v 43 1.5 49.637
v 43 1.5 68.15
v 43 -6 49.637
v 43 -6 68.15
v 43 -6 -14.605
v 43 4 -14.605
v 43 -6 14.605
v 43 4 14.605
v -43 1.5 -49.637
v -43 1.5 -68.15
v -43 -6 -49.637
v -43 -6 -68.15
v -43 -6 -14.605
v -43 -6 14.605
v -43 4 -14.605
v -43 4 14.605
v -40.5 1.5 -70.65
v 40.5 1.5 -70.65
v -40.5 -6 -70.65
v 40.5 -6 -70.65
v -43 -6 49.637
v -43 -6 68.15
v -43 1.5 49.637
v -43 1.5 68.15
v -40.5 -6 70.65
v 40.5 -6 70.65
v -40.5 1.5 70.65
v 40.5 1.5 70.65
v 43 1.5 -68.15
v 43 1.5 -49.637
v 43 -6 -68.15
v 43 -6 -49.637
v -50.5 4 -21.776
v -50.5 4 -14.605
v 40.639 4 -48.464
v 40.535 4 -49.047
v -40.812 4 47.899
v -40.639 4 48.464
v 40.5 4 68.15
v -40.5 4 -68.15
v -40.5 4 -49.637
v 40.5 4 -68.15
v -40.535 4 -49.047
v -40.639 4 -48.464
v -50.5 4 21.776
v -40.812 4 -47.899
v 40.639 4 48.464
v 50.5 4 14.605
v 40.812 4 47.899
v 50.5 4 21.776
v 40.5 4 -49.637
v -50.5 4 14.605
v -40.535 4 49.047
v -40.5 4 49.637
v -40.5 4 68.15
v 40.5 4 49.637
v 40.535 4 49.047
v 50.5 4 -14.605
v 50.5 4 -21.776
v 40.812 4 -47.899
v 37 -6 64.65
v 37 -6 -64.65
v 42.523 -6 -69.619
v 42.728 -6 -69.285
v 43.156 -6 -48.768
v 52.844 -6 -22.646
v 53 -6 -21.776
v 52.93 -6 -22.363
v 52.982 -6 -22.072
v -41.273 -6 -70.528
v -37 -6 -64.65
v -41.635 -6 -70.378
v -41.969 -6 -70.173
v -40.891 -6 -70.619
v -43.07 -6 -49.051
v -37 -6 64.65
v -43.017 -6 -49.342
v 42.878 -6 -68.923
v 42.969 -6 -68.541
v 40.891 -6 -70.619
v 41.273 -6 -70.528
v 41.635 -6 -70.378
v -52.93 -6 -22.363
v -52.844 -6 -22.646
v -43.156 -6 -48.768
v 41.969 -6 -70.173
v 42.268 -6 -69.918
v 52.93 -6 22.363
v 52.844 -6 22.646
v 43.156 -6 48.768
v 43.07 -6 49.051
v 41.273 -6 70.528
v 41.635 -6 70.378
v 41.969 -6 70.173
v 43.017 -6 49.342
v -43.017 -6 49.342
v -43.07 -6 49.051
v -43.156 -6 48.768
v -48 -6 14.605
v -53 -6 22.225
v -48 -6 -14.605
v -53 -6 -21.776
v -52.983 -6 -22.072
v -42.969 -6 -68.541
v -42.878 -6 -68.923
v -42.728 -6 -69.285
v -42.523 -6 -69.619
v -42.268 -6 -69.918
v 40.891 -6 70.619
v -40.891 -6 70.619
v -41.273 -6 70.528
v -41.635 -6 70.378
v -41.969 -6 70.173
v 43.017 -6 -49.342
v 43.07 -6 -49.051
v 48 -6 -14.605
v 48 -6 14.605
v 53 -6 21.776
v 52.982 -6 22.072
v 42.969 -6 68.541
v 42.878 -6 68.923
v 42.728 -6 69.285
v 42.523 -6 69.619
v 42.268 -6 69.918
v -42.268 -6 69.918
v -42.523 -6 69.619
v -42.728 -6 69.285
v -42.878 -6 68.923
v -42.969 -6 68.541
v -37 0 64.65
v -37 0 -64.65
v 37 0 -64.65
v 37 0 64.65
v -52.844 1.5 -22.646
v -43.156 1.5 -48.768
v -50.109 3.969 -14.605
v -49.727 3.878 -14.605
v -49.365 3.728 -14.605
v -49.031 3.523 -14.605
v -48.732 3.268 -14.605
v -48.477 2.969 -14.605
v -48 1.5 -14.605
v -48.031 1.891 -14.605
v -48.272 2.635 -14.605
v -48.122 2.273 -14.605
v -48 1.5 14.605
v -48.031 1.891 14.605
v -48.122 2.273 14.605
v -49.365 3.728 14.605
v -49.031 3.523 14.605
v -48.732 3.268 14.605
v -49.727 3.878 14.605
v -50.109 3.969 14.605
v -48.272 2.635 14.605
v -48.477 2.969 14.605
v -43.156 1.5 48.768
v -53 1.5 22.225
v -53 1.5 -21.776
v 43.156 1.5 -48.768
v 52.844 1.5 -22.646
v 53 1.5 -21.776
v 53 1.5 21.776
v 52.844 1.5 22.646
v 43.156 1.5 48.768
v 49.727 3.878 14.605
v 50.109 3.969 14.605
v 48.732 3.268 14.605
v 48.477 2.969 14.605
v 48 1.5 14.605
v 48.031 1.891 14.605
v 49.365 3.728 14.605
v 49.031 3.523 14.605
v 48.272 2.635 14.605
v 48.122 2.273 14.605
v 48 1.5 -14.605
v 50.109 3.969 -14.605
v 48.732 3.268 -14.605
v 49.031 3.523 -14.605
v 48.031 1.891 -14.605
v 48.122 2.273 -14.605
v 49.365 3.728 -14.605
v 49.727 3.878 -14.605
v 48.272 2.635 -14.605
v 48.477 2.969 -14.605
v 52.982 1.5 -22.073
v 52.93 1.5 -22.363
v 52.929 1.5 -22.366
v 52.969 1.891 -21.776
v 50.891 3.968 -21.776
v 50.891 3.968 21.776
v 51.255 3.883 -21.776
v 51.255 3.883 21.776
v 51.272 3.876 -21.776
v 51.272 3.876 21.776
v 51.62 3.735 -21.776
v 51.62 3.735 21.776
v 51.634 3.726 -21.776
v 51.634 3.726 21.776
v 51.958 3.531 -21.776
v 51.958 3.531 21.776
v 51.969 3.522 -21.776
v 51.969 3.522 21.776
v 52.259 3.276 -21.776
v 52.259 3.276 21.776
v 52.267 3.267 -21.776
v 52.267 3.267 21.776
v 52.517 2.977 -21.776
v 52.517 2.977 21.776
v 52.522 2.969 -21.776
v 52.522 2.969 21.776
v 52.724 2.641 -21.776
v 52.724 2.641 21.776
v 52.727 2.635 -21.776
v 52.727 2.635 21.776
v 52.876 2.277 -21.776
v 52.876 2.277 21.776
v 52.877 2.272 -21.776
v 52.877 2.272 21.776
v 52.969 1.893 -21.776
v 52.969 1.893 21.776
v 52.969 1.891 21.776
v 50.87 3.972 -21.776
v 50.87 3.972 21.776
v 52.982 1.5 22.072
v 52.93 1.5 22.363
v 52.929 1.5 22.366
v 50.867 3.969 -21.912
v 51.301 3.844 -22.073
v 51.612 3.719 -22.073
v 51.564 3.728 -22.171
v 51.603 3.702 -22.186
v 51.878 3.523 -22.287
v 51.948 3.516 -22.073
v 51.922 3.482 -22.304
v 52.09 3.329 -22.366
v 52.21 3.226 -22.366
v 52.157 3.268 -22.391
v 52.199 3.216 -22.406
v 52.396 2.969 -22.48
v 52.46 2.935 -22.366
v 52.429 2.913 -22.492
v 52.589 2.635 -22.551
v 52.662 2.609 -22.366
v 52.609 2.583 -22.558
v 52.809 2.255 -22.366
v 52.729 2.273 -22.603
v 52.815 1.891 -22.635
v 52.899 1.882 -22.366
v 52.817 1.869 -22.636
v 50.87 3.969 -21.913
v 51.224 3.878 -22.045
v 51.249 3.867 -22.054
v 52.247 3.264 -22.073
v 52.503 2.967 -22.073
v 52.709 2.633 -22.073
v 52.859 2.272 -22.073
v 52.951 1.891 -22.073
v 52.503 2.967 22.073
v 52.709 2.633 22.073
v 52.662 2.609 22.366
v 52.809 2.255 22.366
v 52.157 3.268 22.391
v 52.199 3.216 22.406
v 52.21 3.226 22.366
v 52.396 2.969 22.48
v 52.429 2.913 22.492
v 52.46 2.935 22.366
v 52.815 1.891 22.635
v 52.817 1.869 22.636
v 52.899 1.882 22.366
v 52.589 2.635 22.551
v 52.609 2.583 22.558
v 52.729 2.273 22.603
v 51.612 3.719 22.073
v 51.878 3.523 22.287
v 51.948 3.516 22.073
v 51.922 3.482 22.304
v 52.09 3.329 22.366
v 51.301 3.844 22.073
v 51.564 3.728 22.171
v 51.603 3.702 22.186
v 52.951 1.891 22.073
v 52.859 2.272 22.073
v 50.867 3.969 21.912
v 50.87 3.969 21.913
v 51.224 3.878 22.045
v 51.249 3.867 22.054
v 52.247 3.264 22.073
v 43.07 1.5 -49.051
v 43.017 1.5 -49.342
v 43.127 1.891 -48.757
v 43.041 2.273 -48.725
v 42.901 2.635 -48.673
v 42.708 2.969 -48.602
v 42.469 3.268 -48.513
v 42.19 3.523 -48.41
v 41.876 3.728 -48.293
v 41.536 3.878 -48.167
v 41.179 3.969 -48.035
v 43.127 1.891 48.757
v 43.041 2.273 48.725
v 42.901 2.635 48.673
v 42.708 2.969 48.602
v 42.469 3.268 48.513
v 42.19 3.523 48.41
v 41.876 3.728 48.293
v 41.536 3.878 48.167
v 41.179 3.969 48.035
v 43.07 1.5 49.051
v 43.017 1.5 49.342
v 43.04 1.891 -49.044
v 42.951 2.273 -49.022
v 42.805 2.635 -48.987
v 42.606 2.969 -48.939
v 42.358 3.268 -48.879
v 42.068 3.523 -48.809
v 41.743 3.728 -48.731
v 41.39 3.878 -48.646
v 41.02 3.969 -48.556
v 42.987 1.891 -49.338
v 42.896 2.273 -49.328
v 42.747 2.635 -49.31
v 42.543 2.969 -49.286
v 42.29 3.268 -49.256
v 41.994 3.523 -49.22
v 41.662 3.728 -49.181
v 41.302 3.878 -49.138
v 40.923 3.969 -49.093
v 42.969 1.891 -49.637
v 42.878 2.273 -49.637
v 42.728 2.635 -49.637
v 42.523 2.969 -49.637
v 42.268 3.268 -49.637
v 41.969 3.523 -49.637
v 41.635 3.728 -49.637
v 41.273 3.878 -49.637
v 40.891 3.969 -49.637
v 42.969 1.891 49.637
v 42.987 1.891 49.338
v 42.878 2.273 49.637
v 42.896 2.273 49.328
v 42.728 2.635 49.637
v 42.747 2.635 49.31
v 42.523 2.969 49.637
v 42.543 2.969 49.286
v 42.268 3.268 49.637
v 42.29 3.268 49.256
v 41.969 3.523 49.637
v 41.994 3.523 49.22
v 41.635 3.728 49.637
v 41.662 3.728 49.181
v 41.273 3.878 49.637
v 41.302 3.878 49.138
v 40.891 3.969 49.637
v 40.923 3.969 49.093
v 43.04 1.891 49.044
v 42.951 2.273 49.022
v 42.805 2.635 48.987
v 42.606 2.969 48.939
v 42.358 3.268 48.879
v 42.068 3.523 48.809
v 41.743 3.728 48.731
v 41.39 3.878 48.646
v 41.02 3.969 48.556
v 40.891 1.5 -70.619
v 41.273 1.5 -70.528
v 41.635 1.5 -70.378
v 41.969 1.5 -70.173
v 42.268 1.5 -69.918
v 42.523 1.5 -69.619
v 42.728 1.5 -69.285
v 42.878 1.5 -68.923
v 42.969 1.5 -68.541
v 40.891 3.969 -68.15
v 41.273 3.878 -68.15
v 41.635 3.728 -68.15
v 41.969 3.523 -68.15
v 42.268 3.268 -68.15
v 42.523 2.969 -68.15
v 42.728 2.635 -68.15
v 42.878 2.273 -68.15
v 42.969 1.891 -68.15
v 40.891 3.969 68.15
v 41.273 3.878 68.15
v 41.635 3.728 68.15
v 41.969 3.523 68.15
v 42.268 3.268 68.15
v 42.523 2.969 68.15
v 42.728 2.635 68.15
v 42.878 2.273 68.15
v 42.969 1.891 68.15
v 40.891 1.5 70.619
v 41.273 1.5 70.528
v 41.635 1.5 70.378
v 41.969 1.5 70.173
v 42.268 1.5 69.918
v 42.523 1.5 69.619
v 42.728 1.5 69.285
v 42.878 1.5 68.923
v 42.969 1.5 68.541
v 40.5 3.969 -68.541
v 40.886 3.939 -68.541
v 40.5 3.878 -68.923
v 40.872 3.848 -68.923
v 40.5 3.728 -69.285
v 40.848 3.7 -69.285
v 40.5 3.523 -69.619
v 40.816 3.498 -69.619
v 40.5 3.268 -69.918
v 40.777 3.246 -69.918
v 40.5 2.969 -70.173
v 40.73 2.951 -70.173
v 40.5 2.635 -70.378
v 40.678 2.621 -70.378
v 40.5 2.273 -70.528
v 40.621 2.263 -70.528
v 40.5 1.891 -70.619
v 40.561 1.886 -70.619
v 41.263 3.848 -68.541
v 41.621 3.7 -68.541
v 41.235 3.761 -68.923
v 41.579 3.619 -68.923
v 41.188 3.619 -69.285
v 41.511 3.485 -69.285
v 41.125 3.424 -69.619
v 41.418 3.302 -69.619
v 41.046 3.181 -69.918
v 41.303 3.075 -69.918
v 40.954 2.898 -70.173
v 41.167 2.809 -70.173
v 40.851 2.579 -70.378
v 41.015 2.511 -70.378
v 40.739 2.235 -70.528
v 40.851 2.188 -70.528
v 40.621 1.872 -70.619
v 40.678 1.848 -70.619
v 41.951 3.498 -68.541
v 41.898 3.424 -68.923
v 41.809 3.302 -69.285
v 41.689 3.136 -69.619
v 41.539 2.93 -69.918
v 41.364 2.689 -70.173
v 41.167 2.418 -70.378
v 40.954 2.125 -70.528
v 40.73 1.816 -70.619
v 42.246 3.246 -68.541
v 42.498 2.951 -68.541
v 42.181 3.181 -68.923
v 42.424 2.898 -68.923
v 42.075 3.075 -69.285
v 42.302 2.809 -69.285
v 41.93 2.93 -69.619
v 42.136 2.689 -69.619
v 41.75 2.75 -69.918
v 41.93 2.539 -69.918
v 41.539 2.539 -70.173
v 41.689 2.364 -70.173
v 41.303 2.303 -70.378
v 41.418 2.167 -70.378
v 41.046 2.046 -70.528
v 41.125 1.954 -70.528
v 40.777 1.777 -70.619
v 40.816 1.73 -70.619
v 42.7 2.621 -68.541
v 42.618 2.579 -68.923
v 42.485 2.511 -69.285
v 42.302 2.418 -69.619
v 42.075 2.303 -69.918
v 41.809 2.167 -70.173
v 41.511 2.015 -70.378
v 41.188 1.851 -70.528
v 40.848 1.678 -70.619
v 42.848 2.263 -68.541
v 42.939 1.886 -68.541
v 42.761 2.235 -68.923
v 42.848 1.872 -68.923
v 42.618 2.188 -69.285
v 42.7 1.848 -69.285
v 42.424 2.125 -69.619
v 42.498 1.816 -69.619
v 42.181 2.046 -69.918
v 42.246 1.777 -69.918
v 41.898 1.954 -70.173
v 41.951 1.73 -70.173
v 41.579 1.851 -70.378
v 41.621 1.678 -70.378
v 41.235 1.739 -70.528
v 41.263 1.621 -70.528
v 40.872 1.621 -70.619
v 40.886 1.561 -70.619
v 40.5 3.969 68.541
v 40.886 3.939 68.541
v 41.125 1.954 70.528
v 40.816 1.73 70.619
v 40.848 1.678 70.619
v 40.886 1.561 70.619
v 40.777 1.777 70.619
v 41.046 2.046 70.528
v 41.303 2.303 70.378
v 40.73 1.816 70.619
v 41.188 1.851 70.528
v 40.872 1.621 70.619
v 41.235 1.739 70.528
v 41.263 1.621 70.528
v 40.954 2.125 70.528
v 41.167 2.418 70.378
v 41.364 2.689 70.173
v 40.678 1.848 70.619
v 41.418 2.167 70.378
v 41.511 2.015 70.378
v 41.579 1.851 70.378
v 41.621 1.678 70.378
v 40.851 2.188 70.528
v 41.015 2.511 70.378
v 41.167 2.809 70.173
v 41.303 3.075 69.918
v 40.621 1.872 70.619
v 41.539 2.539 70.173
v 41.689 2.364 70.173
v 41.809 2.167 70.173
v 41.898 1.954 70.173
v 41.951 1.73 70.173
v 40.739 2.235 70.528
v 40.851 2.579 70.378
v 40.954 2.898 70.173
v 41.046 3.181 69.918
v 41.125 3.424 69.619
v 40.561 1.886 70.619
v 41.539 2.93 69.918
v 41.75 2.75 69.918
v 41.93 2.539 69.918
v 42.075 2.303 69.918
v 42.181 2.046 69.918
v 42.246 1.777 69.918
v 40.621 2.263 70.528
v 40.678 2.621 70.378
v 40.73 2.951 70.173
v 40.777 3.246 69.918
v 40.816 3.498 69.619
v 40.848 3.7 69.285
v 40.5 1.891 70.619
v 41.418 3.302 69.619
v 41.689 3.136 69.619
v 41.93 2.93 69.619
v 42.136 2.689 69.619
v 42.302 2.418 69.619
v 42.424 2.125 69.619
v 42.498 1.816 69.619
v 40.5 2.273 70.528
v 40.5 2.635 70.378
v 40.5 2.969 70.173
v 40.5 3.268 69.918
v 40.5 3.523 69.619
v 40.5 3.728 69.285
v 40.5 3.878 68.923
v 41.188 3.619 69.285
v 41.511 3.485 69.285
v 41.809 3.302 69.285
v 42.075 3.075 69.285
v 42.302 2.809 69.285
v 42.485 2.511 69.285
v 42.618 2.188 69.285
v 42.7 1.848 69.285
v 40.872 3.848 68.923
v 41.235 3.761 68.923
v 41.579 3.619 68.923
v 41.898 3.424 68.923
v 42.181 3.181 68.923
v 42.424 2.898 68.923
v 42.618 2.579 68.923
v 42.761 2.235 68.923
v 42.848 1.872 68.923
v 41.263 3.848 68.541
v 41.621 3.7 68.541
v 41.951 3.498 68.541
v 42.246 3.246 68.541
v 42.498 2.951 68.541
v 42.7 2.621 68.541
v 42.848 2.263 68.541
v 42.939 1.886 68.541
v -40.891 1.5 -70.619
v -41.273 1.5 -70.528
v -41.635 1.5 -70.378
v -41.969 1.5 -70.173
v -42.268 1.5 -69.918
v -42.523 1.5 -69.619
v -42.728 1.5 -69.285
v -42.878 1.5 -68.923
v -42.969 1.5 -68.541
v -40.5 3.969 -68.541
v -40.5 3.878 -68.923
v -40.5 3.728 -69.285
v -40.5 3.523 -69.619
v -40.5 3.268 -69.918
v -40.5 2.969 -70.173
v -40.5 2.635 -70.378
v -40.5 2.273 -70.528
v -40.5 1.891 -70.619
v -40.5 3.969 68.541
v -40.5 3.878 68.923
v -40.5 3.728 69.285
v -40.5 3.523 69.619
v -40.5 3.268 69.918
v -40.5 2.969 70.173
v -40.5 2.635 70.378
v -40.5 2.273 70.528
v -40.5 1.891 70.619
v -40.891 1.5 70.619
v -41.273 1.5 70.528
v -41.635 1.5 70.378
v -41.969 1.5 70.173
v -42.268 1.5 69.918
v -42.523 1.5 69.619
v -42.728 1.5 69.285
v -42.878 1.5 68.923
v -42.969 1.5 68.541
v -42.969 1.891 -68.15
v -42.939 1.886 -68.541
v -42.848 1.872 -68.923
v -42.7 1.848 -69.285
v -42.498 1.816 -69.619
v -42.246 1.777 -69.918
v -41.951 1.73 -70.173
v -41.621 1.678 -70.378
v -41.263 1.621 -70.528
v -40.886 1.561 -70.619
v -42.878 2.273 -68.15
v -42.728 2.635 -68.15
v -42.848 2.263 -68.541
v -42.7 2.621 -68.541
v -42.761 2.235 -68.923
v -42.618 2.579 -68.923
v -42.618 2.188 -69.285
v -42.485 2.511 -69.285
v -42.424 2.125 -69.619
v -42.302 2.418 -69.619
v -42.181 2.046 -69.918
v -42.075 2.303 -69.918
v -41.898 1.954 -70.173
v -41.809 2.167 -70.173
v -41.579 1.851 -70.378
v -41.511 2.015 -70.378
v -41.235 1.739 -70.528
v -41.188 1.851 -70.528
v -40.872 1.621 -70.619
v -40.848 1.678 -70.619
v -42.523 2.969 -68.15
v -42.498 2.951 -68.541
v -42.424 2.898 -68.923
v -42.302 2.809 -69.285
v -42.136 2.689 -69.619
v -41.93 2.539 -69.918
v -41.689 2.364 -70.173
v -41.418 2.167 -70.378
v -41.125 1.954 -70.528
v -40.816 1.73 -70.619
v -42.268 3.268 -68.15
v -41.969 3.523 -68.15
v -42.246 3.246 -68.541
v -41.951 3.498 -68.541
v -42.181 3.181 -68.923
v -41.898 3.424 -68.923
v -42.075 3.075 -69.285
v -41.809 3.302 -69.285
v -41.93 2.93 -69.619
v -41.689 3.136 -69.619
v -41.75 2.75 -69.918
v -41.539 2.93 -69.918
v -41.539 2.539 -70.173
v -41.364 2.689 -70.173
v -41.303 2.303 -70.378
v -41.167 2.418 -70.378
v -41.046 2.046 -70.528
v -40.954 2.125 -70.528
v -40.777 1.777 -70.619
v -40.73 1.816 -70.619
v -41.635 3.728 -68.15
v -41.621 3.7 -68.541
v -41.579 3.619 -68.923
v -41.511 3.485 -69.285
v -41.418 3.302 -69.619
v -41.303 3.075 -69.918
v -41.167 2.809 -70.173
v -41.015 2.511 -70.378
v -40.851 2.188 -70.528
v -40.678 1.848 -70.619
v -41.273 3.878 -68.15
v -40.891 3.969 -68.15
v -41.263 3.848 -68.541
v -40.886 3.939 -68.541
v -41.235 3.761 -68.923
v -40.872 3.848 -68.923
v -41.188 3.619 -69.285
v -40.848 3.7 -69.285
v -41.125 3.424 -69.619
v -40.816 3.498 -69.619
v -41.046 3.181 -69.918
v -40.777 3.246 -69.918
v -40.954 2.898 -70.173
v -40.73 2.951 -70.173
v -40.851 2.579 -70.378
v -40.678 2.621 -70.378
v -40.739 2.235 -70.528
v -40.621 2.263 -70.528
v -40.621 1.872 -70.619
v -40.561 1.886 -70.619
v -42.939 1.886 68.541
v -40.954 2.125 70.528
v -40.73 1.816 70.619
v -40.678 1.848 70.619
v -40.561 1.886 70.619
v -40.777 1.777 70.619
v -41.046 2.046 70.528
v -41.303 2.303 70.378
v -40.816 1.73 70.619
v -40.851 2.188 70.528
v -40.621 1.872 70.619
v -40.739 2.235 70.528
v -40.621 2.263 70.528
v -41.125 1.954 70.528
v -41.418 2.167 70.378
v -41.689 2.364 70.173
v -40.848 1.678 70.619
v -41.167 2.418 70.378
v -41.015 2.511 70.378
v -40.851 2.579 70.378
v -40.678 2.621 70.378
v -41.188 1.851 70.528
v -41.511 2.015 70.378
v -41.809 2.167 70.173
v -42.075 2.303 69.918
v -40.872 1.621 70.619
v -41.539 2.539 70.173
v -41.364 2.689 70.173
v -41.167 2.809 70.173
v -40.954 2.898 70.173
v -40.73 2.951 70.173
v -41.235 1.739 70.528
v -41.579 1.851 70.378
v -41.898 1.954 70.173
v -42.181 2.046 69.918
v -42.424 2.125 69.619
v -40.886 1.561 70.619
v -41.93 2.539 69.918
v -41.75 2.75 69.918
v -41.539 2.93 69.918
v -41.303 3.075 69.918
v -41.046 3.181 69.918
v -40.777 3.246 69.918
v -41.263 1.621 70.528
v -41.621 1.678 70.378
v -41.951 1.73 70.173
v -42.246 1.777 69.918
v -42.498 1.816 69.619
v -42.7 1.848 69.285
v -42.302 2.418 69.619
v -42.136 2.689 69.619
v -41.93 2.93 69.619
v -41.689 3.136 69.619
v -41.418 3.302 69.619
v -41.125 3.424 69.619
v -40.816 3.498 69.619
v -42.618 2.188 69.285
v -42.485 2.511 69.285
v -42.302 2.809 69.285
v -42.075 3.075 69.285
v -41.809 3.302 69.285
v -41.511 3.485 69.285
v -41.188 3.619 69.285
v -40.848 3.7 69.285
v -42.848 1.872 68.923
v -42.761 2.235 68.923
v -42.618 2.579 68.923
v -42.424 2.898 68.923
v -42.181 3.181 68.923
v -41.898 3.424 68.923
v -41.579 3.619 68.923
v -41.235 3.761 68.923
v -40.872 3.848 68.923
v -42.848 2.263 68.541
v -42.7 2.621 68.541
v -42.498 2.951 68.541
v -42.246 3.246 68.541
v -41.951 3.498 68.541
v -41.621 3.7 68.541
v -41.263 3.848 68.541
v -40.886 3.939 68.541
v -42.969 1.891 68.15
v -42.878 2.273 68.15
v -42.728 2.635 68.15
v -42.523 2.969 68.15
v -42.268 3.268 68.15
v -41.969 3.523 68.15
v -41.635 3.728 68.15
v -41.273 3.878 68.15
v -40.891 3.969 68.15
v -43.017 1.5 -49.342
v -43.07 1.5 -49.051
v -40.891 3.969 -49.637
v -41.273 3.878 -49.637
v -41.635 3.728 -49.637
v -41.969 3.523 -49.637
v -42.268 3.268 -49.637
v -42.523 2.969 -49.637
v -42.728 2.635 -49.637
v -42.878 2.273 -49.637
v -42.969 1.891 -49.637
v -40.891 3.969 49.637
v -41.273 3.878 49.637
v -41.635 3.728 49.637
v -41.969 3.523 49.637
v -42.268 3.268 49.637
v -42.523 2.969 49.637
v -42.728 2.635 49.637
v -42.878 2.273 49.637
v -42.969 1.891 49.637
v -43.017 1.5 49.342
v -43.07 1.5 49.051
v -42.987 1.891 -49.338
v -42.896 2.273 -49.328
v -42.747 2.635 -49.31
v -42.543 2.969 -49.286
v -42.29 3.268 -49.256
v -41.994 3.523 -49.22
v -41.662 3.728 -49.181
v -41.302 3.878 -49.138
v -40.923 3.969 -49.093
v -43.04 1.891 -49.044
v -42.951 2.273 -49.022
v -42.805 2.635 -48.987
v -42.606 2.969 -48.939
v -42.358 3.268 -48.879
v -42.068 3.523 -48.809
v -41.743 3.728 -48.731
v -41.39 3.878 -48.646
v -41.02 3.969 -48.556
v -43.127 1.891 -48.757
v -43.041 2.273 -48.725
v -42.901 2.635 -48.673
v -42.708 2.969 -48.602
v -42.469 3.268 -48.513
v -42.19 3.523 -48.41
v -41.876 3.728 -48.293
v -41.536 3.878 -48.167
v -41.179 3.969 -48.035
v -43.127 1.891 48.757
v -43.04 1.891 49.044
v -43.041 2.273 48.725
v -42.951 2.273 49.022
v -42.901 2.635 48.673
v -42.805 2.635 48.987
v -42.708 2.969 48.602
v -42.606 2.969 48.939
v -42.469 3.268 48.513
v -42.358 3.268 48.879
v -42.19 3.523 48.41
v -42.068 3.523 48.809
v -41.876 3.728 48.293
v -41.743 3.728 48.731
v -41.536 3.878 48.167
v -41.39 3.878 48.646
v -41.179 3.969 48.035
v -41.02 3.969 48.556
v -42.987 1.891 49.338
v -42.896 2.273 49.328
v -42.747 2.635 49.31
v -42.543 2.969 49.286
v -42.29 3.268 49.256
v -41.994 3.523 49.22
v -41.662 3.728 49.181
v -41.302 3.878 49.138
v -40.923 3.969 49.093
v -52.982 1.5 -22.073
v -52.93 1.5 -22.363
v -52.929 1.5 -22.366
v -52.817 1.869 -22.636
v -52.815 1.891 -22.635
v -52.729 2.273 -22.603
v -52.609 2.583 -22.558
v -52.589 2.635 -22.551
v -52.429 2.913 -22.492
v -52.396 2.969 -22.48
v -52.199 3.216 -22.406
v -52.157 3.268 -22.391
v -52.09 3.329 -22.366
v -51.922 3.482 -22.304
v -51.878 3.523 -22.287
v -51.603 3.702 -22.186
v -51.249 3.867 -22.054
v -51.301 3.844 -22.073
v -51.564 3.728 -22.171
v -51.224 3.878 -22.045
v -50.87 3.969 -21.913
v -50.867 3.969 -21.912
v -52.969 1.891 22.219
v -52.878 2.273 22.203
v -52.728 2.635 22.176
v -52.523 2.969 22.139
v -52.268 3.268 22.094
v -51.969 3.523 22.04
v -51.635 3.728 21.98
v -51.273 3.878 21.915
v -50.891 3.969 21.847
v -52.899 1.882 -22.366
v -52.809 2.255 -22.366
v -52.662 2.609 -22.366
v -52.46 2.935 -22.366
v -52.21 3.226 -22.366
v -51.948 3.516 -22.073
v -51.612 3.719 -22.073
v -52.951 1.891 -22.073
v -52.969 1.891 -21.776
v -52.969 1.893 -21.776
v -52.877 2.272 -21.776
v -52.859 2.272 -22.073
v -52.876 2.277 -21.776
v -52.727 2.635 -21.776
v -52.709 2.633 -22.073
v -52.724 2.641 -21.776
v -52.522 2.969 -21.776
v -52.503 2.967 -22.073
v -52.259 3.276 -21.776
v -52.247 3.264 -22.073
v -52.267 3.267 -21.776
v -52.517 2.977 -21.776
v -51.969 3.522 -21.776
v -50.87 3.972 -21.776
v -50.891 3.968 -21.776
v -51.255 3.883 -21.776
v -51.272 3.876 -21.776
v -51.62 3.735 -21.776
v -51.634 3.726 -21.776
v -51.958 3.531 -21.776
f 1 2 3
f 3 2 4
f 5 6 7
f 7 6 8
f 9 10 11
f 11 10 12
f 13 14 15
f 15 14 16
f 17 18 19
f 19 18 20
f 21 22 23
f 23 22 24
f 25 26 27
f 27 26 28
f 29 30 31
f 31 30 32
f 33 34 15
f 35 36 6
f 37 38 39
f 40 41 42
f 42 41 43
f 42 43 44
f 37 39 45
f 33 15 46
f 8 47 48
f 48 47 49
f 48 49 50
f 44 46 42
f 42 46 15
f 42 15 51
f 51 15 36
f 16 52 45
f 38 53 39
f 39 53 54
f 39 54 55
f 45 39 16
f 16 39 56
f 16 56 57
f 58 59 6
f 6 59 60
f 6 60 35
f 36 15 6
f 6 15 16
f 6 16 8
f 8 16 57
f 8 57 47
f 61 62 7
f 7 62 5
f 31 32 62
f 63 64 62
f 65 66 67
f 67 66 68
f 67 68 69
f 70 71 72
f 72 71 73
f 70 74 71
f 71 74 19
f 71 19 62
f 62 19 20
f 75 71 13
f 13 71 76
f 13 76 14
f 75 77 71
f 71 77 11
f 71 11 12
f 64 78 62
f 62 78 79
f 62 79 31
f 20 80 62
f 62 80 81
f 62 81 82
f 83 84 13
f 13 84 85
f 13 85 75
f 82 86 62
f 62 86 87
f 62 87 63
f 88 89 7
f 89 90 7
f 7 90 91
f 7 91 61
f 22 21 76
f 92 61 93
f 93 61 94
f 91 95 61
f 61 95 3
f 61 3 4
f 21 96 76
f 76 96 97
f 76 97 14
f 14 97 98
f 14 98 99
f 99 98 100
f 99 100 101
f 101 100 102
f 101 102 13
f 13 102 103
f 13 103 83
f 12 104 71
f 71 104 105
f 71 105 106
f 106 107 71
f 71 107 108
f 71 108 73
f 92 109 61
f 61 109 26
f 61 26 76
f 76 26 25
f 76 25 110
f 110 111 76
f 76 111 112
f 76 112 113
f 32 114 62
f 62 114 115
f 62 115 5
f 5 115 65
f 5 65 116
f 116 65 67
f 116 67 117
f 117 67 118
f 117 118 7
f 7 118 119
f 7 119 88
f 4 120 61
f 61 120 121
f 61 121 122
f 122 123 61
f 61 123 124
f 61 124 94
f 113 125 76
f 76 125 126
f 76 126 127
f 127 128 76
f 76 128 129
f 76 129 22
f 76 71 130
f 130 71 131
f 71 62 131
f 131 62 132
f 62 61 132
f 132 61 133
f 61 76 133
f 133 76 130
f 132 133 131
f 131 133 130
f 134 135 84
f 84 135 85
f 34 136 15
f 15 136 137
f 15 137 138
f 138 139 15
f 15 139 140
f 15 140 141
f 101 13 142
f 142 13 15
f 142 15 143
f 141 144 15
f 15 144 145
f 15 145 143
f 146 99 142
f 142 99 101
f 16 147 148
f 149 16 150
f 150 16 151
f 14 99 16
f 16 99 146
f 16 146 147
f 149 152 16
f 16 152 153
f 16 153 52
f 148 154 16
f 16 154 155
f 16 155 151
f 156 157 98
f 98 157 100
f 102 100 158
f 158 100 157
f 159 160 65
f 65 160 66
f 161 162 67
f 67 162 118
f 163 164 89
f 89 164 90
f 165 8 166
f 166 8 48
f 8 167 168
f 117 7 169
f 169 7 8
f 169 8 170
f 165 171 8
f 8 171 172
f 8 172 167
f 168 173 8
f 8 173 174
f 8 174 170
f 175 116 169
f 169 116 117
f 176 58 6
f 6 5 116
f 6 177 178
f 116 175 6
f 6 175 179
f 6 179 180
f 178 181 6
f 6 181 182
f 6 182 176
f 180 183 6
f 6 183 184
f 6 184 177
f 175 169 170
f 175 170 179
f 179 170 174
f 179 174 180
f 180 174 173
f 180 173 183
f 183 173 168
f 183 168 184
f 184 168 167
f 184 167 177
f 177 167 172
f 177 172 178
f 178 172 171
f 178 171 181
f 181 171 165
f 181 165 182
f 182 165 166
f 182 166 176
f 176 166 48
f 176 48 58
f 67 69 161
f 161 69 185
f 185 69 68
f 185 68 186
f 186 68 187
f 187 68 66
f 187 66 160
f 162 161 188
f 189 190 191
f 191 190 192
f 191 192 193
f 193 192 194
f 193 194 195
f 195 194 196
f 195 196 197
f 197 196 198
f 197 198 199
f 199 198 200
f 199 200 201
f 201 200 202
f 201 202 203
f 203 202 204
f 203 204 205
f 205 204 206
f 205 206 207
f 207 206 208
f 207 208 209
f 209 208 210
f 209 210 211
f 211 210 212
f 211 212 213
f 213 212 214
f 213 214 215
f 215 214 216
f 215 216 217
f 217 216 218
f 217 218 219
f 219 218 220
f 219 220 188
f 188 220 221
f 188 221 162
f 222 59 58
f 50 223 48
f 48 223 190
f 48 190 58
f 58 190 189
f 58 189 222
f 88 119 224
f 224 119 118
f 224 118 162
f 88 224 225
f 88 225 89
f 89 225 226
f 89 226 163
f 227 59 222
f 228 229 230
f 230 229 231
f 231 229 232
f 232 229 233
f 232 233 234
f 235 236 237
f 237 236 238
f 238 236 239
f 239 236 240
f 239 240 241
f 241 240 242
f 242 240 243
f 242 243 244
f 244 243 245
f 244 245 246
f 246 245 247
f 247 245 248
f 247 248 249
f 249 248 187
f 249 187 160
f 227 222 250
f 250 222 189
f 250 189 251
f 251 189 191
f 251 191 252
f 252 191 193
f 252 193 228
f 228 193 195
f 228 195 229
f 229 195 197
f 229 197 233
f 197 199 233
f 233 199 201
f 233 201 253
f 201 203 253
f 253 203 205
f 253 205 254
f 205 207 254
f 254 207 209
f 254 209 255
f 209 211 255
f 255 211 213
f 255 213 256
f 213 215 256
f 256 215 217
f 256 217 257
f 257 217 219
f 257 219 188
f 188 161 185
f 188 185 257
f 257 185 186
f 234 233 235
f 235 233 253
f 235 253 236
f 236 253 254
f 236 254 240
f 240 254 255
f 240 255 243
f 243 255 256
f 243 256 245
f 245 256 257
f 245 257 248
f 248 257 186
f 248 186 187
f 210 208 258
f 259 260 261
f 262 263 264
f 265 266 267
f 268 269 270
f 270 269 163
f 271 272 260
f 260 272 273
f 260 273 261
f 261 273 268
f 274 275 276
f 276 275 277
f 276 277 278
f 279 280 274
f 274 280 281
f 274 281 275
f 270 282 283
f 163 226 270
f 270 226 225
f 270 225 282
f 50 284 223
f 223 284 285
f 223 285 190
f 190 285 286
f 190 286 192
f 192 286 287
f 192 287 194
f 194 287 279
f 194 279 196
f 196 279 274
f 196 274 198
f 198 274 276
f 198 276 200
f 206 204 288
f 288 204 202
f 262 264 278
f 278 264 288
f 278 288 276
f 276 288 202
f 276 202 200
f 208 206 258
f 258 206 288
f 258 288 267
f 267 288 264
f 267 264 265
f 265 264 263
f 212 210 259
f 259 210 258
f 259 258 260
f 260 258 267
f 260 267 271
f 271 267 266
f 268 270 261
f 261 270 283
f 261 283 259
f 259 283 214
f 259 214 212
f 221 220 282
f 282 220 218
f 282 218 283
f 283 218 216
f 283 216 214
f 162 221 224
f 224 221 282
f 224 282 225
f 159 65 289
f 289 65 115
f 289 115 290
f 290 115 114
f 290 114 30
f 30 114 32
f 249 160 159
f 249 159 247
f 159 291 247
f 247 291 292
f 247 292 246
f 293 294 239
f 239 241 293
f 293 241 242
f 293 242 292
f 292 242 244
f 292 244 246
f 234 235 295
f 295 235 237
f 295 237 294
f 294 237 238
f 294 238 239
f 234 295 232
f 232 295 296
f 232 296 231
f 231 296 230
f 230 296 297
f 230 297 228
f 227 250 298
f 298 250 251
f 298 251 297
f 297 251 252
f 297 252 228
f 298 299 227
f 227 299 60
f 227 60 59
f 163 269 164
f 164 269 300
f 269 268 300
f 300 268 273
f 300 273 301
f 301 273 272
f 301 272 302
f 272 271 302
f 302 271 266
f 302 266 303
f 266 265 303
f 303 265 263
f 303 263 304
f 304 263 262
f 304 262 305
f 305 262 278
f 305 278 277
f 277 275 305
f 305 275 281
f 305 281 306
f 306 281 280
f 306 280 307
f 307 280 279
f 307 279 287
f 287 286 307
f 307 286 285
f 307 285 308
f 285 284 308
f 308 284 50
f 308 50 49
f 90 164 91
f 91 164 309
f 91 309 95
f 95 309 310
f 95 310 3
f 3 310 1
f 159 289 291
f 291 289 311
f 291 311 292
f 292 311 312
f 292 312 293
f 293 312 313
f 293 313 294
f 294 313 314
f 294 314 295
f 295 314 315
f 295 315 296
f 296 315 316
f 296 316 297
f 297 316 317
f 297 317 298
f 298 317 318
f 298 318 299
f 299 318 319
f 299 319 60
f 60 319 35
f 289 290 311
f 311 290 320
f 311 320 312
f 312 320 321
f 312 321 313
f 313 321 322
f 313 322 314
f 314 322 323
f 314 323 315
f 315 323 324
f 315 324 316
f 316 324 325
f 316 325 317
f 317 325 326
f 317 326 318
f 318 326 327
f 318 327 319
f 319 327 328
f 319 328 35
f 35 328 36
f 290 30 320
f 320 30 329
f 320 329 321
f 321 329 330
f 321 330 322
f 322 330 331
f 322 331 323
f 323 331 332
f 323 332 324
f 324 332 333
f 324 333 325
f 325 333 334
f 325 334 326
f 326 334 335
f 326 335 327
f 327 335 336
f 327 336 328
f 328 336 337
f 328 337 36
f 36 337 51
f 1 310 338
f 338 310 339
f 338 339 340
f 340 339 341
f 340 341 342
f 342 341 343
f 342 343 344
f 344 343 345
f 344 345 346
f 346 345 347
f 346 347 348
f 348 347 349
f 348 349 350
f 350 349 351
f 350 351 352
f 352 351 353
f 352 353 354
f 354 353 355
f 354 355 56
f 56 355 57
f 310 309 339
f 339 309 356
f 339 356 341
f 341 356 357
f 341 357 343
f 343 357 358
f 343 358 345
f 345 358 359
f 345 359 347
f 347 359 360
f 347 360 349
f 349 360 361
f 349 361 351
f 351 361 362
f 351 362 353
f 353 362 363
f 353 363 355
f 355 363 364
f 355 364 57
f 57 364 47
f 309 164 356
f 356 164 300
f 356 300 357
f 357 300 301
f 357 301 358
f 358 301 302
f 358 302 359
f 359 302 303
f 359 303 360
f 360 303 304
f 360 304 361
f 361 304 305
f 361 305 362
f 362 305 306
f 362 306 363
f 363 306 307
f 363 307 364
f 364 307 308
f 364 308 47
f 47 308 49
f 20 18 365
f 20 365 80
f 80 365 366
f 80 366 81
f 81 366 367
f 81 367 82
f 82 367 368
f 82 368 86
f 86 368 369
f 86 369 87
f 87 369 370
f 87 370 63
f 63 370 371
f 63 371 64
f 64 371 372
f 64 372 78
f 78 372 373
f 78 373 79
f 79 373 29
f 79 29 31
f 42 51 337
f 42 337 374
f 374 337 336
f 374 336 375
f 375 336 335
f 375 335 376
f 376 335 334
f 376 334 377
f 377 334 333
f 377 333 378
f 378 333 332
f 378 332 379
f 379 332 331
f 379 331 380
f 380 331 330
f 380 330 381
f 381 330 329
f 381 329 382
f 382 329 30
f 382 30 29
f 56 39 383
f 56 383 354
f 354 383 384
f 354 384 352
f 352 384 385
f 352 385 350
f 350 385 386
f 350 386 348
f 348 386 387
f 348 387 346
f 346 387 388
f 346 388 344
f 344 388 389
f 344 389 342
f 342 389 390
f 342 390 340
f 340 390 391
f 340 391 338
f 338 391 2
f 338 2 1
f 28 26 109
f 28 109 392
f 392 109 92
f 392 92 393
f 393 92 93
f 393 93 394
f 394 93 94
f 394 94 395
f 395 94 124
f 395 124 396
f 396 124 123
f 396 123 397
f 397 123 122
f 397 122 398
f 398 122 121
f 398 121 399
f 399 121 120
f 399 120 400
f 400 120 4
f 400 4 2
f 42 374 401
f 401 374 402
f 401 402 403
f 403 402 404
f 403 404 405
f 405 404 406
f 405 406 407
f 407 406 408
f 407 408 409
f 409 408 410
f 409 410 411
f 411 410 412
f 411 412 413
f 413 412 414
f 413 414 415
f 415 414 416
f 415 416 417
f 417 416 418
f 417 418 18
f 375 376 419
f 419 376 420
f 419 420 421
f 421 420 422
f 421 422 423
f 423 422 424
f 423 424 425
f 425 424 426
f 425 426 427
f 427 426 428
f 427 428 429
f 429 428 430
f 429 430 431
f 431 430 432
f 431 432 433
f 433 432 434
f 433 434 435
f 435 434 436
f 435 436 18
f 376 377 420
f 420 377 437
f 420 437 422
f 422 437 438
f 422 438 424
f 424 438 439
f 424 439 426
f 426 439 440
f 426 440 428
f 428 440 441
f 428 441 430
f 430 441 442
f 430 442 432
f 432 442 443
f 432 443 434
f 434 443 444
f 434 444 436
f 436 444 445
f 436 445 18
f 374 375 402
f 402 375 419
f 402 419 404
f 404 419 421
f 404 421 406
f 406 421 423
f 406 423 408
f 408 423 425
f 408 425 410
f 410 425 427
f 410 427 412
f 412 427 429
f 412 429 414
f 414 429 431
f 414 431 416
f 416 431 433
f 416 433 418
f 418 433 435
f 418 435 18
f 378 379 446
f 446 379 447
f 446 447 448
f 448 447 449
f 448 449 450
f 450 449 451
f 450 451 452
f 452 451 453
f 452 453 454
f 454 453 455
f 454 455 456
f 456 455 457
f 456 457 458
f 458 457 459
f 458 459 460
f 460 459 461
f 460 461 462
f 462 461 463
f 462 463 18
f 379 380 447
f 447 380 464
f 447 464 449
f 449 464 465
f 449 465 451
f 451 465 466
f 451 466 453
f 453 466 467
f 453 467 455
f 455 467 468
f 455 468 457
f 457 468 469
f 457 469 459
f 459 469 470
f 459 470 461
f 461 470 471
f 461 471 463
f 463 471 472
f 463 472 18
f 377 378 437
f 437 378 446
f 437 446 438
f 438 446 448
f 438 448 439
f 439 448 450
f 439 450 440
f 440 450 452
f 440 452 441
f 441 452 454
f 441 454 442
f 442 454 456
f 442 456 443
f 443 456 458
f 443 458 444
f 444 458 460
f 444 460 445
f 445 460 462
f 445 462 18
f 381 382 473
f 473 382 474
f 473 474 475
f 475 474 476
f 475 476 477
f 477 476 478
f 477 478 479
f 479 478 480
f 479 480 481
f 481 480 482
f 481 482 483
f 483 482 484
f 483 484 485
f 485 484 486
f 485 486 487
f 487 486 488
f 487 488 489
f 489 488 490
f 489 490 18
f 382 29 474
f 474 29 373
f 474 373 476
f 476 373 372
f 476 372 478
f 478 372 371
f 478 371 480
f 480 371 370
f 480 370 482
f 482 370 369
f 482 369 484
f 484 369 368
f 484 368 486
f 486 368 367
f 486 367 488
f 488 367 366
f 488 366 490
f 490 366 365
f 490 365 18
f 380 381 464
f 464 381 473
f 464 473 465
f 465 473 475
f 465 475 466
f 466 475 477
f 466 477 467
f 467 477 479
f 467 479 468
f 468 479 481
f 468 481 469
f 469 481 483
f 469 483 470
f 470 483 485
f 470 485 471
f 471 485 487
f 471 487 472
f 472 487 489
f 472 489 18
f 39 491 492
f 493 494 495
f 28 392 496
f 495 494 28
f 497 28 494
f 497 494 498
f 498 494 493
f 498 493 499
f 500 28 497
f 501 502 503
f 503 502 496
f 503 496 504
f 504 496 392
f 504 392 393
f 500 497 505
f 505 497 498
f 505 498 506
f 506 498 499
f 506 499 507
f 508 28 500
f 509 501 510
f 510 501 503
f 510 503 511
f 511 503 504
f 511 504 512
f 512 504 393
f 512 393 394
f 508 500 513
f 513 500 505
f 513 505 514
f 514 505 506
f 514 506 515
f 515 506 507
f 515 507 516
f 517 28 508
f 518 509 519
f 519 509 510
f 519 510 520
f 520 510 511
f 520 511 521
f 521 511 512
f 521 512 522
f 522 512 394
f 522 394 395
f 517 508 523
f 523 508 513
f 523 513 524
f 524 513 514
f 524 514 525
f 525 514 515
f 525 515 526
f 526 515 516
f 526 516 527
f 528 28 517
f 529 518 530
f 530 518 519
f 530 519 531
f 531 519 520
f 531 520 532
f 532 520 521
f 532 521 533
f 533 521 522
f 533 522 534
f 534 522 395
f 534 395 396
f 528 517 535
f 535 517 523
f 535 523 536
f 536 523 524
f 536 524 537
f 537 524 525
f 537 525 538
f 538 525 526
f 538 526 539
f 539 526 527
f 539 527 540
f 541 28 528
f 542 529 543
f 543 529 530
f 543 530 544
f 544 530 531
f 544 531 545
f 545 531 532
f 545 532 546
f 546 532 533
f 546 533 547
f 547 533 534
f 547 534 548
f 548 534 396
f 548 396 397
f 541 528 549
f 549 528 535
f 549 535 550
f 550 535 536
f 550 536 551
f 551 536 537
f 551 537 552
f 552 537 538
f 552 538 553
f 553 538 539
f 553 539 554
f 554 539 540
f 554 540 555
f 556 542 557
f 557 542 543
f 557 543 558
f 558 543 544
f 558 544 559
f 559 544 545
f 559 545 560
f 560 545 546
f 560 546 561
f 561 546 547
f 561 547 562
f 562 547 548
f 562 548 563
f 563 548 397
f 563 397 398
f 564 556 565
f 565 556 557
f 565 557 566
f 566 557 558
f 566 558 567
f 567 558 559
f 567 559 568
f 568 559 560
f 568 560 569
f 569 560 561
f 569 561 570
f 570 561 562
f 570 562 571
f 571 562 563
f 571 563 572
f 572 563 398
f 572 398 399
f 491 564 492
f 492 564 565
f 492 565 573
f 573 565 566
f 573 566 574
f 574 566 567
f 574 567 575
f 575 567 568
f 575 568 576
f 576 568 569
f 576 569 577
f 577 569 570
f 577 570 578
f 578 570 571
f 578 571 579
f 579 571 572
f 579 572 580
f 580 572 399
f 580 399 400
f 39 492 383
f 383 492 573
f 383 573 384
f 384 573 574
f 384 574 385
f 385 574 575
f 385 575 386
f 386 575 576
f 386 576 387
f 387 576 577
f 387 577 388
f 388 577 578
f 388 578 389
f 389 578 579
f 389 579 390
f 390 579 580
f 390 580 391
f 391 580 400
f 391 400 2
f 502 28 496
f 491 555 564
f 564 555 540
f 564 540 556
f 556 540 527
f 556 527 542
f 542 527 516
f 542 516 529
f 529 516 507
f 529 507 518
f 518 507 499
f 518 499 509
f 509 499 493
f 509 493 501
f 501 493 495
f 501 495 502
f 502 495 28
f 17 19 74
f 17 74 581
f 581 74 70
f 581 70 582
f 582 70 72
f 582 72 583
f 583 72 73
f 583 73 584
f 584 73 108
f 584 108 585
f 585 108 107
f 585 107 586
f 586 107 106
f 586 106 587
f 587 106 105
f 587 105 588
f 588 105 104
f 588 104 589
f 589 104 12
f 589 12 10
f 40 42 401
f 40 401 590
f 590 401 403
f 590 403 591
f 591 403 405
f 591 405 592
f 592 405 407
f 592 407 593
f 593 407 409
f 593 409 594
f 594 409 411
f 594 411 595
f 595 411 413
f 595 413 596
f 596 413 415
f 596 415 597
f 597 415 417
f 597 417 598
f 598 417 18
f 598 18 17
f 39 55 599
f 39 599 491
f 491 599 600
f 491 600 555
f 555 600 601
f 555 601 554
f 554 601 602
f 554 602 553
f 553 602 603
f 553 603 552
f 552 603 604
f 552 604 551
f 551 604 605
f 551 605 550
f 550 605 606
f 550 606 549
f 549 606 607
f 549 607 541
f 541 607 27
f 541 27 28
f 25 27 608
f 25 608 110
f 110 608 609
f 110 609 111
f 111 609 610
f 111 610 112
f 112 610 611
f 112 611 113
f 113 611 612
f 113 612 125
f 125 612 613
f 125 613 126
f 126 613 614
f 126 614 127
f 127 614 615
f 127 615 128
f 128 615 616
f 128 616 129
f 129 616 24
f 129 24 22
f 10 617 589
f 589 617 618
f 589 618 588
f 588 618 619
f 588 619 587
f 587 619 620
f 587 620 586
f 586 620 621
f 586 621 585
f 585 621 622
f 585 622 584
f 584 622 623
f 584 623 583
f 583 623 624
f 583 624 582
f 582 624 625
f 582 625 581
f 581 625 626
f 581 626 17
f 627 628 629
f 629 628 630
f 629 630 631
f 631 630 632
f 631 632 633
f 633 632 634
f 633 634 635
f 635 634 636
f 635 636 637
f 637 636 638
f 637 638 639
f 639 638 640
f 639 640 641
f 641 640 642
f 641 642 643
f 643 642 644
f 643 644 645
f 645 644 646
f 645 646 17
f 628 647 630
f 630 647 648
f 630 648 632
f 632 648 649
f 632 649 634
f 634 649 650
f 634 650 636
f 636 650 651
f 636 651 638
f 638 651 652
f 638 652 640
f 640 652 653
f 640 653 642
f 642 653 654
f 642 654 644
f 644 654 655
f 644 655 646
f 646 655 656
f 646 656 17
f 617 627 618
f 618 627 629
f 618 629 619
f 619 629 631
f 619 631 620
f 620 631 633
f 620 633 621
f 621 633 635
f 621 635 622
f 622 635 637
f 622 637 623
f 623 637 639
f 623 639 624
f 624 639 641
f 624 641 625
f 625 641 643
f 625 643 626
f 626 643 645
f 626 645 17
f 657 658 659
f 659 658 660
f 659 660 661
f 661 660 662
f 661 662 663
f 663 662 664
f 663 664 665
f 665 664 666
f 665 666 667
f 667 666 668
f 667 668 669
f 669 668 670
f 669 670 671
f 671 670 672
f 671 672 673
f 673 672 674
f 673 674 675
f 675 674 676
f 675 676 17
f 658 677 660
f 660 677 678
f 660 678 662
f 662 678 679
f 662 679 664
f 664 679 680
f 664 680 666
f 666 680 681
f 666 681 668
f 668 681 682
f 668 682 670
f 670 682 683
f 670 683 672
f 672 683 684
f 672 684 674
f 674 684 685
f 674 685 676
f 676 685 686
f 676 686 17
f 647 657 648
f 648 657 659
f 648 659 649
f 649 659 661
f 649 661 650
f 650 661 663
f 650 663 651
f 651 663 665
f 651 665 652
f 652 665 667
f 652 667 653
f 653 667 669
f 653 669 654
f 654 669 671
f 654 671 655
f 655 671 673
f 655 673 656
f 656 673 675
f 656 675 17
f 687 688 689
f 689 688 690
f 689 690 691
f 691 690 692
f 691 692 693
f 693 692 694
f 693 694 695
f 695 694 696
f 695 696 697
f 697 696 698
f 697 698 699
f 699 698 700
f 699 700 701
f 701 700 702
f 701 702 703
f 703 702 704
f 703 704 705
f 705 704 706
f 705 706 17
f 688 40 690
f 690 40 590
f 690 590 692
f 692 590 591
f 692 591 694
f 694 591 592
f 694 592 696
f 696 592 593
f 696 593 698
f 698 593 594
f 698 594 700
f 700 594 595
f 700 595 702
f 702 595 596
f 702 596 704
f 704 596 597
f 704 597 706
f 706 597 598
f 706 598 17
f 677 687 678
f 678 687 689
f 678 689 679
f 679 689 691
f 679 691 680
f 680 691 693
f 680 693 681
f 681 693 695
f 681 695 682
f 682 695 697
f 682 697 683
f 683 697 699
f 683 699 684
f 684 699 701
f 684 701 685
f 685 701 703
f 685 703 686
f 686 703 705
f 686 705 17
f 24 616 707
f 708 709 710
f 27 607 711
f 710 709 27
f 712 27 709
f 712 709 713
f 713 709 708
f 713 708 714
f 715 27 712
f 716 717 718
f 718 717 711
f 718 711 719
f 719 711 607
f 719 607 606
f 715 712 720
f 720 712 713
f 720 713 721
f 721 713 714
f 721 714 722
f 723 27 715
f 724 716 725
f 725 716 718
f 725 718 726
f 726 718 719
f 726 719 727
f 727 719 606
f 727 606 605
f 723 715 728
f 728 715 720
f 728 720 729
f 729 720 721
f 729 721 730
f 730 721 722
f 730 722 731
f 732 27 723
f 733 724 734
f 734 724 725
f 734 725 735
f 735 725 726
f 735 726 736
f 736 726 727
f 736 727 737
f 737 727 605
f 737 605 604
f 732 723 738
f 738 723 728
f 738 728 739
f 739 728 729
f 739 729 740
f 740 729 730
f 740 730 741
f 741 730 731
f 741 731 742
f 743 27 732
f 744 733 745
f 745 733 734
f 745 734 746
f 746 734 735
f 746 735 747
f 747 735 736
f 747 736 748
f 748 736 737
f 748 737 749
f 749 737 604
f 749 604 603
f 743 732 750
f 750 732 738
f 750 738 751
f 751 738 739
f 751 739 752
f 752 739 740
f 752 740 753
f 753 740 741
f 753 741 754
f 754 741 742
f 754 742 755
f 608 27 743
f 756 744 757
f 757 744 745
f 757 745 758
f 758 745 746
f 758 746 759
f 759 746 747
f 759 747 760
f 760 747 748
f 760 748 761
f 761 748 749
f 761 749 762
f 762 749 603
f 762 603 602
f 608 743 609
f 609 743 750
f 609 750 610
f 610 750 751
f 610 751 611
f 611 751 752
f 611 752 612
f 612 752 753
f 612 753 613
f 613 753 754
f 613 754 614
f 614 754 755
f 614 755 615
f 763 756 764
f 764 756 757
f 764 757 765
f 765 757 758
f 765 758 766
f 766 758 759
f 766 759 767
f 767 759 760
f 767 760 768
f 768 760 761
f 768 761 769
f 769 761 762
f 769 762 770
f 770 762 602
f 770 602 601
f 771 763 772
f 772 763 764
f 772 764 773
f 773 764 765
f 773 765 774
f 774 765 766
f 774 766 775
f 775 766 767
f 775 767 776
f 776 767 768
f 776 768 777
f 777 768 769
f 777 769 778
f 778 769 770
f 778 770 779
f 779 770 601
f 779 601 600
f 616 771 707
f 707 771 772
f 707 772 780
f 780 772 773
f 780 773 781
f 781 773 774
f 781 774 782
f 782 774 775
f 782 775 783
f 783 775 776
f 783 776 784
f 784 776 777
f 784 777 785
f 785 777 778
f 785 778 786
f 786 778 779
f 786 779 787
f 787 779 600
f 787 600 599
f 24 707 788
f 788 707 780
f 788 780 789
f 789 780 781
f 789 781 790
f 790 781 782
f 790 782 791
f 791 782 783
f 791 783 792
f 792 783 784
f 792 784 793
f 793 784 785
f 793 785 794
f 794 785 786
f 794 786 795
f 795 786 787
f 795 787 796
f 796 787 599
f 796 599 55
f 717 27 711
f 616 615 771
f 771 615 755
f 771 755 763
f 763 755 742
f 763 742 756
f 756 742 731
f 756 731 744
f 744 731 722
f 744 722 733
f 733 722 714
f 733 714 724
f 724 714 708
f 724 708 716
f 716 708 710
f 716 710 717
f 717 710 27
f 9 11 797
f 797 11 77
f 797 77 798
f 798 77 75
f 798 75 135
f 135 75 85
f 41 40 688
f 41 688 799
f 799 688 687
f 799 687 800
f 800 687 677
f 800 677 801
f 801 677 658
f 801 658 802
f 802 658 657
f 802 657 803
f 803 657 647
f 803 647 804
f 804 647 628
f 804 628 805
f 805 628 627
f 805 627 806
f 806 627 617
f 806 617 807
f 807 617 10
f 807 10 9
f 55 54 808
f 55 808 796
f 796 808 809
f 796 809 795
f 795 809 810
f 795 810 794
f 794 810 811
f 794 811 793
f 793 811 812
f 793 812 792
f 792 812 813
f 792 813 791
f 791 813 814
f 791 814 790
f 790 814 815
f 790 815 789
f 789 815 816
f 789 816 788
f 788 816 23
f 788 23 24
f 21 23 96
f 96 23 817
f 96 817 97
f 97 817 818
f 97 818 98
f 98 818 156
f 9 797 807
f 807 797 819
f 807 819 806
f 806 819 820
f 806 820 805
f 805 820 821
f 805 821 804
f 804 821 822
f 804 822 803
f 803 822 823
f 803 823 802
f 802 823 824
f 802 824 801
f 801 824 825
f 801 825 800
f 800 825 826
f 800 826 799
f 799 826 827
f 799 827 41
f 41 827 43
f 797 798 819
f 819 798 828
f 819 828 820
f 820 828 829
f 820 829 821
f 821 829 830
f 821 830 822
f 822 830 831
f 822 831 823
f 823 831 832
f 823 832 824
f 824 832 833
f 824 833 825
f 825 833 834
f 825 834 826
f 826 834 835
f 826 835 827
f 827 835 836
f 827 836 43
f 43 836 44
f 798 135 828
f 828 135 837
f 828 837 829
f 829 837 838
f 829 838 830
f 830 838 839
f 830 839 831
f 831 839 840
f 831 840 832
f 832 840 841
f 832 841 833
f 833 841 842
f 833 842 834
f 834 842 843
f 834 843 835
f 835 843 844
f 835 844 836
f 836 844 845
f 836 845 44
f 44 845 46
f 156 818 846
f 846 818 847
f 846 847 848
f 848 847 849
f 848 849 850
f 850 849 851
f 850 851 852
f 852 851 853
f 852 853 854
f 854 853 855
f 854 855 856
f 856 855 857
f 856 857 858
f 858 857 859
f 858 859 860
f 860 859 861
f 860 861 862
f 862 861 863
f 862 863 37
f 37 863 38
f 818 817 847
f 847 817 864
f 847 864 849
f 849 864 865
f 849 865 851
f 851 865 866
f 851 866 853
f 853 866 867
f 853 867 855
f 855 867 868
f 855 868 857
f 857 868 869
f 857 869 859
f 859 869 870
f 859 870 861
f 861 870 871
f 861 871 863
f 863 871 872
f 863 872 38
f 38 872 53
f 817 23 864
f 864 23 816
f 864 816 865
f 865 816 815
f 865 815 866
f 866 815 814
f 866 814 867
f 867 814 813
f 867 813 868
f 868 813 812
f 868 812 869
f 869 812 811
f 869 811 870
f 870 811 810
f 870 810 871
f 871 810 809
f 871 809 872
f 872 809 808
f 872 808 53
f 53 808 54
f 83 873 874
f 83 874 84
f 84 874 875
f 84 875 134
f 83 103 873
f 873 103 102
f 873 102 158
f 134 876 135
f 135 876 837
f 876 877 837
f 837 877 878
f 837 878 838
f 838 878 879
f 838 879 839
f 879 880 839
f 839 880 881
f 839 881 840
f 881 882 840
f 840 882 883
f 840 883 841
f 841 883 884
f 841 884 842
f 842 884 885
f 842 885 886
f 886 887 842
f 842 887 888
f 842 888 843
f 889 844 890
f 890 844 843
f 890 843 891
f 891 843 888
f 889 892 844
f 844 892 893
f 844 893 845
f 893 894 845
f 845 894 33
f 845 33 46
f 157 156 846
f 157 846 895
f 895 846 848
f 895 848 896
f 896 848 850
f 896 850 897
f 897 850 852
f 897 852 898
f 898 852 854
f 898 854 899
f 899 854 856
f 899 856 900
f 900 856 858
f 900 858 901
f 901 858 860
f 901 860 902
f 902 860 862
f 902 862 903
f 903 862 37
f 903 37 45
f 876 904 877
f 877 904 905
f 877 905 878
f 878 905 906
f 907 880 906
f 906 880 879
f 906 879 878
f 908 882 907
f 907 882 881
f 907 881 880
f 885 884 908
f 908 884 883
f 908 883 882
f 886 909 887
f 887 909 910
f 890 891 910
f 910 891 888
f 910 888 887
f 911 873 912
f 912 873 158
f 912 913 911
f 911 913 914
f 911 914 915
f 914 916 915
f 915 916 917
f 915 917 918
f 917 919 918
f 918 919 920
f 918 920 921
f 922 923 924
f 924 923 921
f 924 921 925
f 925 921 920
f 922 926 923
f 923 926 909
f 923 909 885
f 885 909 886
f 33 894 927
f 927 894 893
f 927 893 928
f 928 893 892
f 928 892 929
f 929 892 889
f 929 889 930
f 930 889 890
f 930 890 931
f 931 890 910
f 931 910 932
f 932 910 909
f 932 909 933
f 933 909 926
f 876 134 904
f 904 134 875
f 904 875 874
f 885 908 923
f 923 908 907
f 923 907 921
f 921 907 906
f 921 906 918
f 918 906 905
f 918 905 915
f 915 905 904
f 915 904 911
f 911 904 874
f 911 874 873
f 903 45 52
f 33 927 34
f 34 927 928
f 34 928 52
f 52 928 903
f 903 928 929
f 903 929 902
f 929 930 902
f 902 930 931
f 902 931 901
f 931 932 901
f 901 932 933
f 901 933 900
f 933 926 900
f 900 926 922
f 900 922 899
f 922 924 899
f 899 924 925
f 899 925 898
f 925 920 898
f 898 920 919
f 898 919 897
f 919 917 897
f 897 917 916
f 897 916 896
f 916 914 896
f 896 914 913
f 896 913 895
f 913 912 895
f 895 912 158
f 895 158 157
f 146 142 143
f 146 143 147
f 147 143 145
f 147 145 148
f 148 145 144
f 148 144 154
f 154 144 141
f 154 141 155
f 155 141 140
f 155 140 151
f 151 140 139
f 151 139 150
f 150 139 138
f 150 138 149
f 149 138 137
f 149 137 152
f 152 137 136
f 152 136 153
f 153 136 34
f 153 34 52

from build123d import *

# Parameters (mm, degrees)
SKETCH1_W           = 86
SKETCH1_H           = 141.3
BOSS_EXTRUDE1_DEPTH = 4
SKETCH1_3_W         = 86
SKETCH1_3_H         = 141.3
SKETCH1_3_W_2       = 74
SKETCH1_3_H_2       = 129.3
BOSS_EXTRUDE2_DEPTH = 6
BOSS_EXTRUDE3_DEPTH = 10
FILLET2_R           = 2.5


with BuildPart() as part:
    # Sketch1 → Boss-Extrude1 (new body)
    with BuildSketch(Plane(origin=(0, 0, 0), x_dir=(1, 0, 0), z_dir=(0, 1, 0))):
        Rectangle(SKETCH1_W, SKETCH1_H)
    extrude(amount=BOSS_EXTRUDE1_DEPTH)

    # Sketch1<3> → Boss-Extrude2 (add)
    with BuildSketch(Plane(origin=(0, 0, 0), x_dir=(1, 0, 0), z_dir=(0, 1, 0))):
        Rectangle(SKETCH1_3_W, SKETCH1_3_H)
        Rectangle(SKETCH1_3_W_2, SKETCH1_3_H_2, mode=Mode.SUBTRACT)
    extrude(amount=-BOSS_EXTRUDE2_DEPTH)

    # Sketch2 → Boss-Extrude3 (add)
    with BuildSketch(Plane(origin=(0, 4, 0), x_dir=(1, 0, 0), z_dir=(0, 1, 0))):
        Polygon((-43, 49.188592066), (-53, 22.225), (-53, -22.225), (-43, -49.188592066), (-43, -22.225), (-43, -14.605), (-48, -14.605), (-48, 14.605), (-43, 14.605), (-43, 22.225), align=None)
        Polygon((53, 22.225), (43, 22.225), (43, 14.605), (48, 14.605), (48, -14.605), (43, -14.605), (43, -22.225), (43, -49.188592066), (53, -22.225), align=None)
        Polygon((43, 49.188592066), (43, 22.225), (53, 22.225), align=None)
    extrude(amount=-BOSS_EXTRUDE3_DEPTH)

    # Fillet2
    fillet2_edges = [part.edges().sort_by_distance(p)[0] for p in [
        (0, 4, 70.65),
        (43, 4, -59.919296033),
        (-43, 4, 59.919296033),
        (0, 4, -70.65),
        (-48, 4, -35.706796033),
        (-53, -1, -22.225),
        (-43, -1, -49.188592066),
        (-43, -1, 49.188592066),
        (-53, 4, 0),
        (-48, 4, 35.706796033),
        (-48, 4, 0),
        (43, 4, 59.919296033),
        (43, -1, -49.188592066),
        (53, 4, 0),
        (53, -1, -22.225),
        (48, 4, 35.706796033),
        (53, -1, 22.225),
        (43, -1, 49.188592066),
        (48, 4, 0),
        (-43, 4, -59.919296033),
        (48, 4, -35.706796033),
        (43, -1, -70.65),
        (43, -1, 70.65),
        (-43, -1, 70.65),
        (-43, -1, -70.65),
    ]]
    fillet(fillet2_edges, radius=FILLET2_R - 0.0001)  # a hair under: the kernel refuses the full size


solid = part.part
